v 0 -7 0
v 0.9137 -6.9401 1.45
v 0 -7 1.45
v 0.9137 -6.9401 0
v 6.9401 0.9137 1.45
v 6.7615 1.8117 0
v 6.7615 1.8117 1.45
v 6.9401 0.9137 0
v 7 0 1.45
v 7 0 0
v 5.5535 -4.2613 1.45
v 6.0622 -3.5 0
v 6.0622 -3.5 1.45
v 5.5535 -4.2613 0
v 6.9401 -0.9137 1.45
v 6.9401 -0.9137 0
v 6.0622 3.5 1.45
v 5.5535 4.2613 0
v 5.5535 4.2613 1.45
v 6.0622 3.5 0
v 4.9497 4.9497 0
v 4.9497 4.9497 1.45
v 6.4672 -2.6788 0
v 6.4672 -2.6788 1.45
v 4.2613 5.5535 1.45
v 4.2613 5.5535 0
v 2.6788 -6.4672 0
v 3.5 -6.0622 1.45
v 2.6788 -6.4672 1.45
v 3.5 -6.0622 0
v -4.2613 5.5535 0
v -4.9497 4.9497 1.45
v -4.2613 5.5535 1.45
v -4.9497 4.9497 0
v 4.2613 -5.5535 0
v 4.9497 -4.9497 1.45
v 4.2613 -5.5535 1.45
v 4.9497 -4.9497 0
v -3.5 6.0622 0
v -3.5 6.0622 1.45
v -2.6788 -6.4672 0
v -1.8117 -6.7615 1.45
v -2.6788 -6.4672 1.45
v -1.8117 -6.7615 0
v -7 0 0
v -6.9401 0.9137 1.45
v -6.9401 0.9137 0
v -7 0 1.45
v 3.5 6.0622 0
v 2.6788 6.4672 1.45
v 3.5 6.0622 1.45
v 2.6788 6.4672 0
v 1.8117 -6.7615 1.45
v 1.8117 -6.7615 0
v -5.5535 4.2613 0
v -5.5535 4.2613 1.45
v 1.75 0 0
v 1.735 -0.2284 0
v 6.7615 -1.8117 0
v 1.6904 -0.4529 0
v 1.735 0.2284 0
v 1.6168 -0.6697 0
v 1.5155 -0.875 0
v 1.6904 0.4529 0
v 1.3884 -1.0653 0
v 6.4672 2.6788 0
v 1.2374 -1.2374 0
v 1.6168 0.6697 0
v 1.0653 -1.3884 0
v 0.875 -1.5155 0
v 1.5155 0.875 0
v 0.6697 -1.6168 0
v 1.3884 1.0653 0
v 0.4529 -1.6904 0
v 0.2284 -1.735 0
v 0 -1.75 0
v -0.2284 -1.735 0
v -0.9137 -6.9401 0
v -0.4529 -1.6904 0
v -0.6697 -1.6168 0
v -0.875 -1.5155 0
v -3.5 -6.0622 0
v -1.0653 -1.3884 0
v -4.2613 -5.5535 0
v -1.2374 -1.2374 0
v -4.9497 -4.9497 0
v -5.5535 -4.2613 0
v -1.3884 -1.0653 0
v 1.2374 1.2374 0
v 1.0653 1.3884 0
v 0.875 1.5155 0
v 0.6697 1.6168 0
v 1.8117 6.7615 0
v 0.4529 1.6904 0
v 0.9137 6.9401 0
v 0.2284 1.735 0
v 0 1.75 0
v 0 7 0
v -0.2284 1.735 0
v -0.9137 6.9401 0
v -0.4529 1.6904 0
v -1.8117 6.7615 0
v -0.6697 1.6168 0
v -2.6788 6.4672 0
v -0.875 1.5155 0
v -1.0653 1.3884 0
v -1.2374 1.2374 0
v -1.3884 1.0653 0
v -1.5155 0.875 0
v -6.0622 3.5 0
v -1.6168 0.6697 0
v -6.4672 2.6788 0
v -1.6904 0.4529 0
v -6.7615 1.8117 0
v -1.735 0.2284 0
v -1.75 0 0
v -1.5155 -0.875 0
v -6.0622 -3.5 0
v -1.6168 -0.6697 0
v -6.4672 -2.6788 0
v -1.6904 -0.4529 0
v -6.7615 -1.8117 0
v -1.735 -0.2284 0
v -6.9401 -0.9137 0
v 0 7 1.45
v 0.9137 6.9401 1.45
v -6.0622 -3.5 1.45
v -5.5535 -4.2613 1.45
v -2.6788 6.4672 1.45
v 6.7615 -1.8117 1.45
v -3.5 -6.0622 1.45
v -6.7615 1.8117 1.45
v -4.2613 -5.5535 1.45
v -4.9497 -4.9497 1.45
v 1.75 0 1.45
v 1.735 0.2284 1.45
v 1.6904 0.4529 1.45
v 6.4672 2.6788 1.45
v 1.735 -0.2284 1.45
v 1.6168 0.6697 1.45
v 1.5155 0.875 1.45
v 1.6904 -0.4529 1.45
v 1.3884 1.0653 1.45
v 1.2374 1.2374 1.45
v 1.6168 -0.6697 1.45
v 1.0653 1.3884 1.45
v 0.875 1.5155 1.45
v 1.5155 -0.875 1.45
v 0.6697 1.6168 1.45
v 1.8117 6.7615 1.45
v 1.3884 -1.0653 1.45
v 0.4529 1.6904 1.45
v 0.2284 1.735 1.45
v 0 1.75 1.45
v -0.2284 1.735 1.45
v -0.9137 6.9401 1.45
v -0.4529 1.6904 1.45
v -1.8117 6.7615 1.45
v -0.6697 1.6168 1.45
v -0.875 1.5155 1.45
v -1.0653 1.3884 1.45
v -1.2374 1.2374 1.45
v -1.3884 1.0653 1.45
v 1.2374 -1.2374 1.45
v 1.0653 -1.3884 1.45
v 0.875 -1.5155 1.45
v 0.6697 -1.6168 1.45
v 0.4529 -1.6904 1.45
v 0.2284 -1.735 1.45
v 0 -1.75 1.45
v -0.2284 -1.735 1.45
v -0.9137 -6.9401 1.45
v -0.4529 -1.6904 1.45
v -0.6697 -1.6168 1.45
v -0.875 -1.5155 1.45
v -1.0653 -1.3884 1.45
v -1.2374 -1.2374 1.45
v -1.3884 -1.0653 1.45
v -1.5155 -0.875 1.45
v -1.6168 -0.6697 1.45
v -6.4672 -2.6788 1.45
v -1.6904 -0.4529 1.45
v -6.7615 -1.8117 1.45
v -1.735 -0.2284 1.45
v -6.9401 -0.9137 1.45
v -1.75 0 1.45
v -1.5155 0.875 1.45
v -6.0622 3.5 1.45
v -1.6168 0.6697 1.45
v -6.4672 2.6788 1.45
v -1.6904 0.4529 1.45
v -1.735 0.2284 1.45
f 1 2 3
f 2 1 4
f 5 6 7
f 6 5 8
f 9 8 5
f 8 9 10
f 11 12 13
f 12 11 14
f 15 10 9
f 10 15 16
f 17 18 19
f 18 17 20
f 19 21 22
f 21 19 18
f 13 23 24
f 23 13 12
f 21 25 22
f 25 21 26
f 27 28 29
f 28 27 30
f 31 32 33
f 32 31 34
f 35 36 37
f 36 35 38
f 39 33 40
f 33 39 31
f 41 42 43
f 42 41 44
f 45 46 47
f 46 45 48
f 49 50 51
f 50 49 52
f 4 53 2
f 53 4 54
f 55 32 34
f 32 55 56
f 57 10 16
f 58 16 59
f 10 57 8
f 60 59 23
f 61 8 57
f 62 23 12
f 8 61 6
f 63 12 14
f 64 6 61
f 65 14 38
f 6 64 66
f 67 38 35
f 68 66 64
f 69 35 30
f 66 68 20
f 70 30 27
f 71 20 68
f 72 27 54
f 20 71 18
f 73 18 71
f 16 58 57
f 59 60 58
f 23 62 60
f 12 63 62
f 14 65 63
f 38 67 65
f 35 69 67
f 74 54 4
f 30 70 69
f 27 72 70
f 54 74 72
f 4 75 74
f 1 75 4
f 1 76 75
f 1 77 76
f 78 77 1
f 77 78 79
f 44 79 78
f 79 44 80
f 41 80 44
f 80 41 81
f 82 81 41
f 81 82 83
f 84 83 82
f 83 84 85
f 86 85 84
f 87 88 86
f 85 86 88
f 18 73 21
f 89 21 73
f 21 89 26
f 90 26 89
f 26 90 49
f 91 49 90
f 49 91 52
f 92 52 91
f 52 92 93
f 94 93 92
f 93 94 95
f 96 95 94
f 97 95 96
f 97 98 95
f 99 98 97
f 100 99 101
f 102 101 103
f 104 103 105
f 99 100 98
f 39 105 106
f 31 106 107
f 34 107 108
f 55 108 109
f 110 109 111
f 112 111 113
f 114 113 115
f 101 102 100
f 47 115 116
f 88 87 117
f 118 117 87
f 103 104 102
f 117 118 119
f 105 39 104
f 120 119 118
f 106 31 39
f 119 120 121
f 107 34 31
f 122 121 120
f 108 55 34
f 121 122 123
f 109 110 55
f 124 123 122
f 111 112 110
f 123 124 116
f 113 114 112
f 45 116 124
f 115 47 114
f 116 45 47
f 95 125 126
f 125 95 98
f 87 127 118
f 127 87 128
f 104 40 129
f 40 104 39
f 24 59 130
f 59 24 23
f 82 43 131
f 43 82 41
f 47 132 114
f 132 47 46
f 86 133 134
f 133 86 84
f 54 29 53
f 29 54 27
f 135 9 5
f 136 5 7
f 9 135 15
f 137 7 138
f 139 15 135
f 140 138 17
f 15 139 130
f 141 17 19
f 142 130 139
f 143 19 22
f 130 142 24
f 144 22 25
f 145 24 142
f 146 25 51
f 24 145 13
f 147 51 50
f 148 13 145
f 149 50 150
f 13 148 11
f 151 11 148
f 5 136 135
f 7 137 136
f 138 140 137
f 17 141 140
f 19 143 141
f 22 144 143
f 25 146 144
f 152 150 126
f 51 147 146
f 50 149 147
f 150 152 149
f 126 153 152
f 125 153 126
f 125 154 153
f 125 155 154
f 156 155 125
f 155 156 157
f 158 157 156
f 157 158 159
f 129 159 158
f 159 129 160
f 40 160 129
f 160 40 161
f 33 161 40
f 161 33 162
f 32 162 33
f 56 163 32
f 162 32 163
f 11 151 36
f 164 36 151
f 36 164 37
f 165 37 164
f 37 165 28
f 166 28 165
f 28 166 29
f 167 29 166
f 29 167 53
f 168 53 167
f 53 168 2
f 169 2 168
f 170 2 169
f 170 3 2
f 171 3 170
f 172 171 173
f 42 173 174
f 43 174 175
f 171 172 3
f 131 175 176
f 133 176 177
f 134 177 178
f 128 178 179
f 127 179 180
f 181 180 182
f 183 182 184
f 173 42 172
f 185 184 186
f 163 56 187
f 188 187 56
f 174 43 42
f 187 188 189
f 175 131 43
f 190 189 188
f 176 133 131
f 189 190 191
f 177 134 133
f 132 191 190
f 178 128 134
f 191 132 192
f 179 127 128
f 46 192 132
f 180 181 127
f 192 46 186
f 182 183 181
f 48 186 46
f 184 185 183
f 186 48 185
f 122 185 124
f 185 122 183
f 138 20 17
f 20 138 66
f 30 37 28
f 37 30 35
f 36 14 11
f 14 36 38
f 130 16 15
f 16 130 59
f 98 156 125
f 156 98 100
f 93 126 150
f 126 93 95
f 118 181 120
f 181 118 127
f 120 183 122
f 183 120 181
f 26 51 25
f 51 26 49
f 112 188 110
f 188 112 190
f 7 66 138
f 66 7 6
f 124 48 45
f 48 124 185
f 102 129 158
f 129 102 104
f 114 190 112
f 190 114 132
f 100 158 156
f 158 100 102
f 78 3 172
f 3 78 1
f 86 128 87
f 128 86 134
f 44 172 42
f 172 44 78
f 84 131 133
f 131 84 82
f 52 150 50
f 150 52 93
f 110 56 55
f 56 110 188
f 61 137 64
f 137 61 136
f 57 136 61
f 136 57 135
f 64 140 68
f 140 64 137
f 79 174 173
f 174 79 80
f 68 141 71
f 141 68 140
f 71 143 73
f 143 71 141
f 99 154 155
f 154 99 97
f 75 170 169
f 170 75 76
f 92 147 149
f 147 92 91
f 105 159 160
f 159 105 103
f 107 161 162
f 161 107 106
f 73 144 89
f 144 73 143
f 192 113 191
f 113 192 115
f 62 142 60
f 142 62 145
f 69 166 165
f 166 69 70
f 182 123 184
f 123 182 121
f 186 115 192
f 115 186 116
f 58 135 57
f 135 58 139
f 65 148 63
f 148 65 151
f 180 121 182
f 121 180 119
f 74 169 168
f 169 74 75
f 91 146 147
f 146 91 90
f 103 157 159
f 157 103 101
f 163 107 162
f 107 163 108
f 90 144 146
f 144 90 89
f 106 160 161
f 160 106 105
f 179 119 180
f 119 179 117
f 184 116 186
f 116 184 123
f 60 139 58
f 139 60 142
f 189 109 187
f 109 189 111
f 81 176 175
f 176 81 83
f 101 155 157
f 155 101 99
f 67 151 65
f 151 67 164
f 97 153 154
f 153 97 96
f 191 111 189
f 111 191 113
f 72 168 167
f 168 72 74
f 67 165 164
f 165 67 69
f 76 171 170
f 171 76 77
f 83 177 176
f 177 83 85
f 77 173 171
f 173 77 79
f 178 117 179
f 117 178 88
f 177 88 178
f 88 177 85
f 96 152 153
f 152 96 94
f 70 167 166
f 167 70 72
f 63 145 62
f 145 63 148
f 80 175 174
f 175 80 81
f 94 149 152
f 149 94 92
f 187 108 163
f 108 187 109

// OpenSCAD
// file: parameters.scad
// =============================================================================
// Gen-T Triple-gap sandwich AFPM — WOUND-AWARE (HARD GATE)
// RotorA | Stator1 | Mid dual-face rotor | Stator2 | RotorB
// Magnets: outer 4+4 Ø20, mid 4+4 Ø20; Ø5 Halbach 12+12 outer + 12+12 mid
// =============================================================================

wire_awg            = 26;
wire_od             = 0.45;
turns               = 100;      // 18 pancakes × 100 t ≈ 180 m @ mean 0.10 m
fill                = 0.70;
layers_per_face     = 2;
wind_build_axial    = layers_per_face * wire_od * fill;   // 0.63
wind_build_radial   = 2.5 * wire_od * fill;               // 0.788

coil_id_r           = 24.0;
coil_od_r           = 54.0;
span_deg            = 34.0;     // 9 stations × 40°
former_web          = 2.4;
flange_t            = 0.85;
wall                = 1.2;
slot_w              = 2.4;
mount_hole          = 3.5;
tab_len             = 7.0;

former_bare_h       = former_web + 2 * flange_t;            // 4.1
coil_envelope_h     = former_bare_h + 2 * wind_build_axial; // 5.36

// Each gap: magnet ↔ wound ≥ 0.80
run_clear           = 0.82;
gap_spacer_h        = run_clear + wind_build_axial;         // 1.45
// Outer gap m2m (outer rotor ↔ mid rotor face through one stator):
m2m_outer           = coil_envelope_h + 2 * run_clear;      // 7.00
// Two identical outer gaps + mid carrier thickness between coil planes

coil_stations       = 9;        // per stator; ×2 = 18
bay_r_in            = coil_id_r - 2.0 - wind_build_radial;
bay_r_out           = coil_od_r + 2.0 + wind_build_radial;
bay_span            = span_deg + 4.0;
bay_offset          = 2.0;
bay_depth           = former_bare_h + wind_build_axial;     // seat bare+back wind
stator_back_web     = 2.2;
stator_thick        = bay_depth + stator_back_web;          // ~6.93
stator_od           = 152.0;
shaft_clear_stator  = 40.0;
coil_mount_r        = 30.0;

// Outer rotors: 4×Ø20 + 12×Ø5 each
large_pocket_d      = 20.3;
small_pocket_d      = 5.3;
pocket_h            = 5.2;
outer_large_n       = 4;
mid_large_n_face    = 4;        // 4 per face = 8 mid
R_large             = 50.0;
R_small_inner       = 38.0;
R_small_mid         = 50.0;
R_small_outer       = 62.0;
carrier_od          = 148.0;
outer_carrier_thick = 7.5;
mid_carrier_thick   = 12.0;     // dual face 5.2+1.6+5.2
hub_h               = 10.0;
hub_od              = 30.0;

shaft_bore          = 8.35;
bearing_d           = 21.85;
bearing_h           = 7.2;
m3_clear            = 3.5;
bolt_r_inner        = 36.0;
bolt_n_inner        = 6;
flange_bolt_r       = 72.0;
flange_bolt_n       = 6;
brace_r             = 68.0;
brace_d             = 4.3;
brace_n             = 4;

spacer_pad_od       = 14.0;
spacer_pad_id       = m3_clear;
endbell_od          = 152.0;
endbell_thick       = 8.0;
endbell_shaft_clear = 10.0;

$fn = 64;
// main file
include <parameters.scad>;
$fn = 48;
difference() {
    cylinder(d=spacer_pad_od, h=gap_spacer_h);
    translate([0, 0, -0.1]) cylinder(d=spacer_pad_id, h=gap_spacer_h + 0.2);
}
